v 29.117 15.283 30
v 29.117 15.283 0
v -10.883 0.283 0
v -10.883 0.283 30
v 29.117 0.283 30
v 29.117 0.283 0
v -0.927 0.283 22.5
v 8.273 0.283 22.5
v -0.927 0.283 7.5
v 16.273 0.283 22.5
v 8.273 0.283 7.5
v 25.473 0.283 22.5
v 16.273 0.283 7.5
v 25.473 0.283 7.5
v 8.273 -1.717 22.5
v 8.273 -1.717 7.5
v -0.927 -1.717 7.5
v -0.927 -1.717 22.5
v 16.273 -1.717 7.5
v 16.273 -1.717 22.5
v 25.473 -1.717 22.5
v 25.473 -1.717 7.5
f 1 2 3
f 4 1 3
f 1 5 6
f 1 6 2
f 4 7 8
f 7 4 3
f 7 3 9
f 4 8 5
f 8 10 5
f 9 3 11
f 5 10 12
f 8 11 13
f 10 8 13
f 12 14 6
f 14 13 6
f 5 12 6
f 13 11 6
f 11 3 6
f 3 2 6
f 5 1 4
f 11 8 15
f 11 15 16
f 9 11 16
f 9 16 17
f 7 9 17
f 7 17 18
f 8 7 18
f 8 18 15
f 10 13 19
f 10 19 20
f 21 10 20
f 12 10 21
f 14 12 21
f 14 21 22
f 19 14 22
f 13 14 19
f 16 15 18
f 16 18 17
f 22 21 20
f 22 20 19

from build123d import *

# Parameters (mm, degrees)
PAD_DEPTH    = 30
SKETCH001_W  = 9.2
SKETCH001_H  = 15
PAD001_DEPTH = 2


with BuildPart() as part:
    # Sketch → Pad (new body)
    with BuildSketch(Plane.XY):
        Polygon((-10.883168, 0.282843), (29.116832, 0.282843), (29.116832, 15.282843), align=None)
    extrude(amount=PAD_DEPTH)

    # Sketch001 → Pad001 (new body)
    with BuildSketch(Plane.XZ.offset(-0.282843)):
        with Locations((3.672524, 15)):
            Rectangle(SKETCH001_W, SKETCH001_H)
        with Locations((20.872524, 15)):
            Rectangle(SKETCH001_W, SKETCH001_H)
    extrude(amount=PAD001_DEPTH)


solid = part.part
